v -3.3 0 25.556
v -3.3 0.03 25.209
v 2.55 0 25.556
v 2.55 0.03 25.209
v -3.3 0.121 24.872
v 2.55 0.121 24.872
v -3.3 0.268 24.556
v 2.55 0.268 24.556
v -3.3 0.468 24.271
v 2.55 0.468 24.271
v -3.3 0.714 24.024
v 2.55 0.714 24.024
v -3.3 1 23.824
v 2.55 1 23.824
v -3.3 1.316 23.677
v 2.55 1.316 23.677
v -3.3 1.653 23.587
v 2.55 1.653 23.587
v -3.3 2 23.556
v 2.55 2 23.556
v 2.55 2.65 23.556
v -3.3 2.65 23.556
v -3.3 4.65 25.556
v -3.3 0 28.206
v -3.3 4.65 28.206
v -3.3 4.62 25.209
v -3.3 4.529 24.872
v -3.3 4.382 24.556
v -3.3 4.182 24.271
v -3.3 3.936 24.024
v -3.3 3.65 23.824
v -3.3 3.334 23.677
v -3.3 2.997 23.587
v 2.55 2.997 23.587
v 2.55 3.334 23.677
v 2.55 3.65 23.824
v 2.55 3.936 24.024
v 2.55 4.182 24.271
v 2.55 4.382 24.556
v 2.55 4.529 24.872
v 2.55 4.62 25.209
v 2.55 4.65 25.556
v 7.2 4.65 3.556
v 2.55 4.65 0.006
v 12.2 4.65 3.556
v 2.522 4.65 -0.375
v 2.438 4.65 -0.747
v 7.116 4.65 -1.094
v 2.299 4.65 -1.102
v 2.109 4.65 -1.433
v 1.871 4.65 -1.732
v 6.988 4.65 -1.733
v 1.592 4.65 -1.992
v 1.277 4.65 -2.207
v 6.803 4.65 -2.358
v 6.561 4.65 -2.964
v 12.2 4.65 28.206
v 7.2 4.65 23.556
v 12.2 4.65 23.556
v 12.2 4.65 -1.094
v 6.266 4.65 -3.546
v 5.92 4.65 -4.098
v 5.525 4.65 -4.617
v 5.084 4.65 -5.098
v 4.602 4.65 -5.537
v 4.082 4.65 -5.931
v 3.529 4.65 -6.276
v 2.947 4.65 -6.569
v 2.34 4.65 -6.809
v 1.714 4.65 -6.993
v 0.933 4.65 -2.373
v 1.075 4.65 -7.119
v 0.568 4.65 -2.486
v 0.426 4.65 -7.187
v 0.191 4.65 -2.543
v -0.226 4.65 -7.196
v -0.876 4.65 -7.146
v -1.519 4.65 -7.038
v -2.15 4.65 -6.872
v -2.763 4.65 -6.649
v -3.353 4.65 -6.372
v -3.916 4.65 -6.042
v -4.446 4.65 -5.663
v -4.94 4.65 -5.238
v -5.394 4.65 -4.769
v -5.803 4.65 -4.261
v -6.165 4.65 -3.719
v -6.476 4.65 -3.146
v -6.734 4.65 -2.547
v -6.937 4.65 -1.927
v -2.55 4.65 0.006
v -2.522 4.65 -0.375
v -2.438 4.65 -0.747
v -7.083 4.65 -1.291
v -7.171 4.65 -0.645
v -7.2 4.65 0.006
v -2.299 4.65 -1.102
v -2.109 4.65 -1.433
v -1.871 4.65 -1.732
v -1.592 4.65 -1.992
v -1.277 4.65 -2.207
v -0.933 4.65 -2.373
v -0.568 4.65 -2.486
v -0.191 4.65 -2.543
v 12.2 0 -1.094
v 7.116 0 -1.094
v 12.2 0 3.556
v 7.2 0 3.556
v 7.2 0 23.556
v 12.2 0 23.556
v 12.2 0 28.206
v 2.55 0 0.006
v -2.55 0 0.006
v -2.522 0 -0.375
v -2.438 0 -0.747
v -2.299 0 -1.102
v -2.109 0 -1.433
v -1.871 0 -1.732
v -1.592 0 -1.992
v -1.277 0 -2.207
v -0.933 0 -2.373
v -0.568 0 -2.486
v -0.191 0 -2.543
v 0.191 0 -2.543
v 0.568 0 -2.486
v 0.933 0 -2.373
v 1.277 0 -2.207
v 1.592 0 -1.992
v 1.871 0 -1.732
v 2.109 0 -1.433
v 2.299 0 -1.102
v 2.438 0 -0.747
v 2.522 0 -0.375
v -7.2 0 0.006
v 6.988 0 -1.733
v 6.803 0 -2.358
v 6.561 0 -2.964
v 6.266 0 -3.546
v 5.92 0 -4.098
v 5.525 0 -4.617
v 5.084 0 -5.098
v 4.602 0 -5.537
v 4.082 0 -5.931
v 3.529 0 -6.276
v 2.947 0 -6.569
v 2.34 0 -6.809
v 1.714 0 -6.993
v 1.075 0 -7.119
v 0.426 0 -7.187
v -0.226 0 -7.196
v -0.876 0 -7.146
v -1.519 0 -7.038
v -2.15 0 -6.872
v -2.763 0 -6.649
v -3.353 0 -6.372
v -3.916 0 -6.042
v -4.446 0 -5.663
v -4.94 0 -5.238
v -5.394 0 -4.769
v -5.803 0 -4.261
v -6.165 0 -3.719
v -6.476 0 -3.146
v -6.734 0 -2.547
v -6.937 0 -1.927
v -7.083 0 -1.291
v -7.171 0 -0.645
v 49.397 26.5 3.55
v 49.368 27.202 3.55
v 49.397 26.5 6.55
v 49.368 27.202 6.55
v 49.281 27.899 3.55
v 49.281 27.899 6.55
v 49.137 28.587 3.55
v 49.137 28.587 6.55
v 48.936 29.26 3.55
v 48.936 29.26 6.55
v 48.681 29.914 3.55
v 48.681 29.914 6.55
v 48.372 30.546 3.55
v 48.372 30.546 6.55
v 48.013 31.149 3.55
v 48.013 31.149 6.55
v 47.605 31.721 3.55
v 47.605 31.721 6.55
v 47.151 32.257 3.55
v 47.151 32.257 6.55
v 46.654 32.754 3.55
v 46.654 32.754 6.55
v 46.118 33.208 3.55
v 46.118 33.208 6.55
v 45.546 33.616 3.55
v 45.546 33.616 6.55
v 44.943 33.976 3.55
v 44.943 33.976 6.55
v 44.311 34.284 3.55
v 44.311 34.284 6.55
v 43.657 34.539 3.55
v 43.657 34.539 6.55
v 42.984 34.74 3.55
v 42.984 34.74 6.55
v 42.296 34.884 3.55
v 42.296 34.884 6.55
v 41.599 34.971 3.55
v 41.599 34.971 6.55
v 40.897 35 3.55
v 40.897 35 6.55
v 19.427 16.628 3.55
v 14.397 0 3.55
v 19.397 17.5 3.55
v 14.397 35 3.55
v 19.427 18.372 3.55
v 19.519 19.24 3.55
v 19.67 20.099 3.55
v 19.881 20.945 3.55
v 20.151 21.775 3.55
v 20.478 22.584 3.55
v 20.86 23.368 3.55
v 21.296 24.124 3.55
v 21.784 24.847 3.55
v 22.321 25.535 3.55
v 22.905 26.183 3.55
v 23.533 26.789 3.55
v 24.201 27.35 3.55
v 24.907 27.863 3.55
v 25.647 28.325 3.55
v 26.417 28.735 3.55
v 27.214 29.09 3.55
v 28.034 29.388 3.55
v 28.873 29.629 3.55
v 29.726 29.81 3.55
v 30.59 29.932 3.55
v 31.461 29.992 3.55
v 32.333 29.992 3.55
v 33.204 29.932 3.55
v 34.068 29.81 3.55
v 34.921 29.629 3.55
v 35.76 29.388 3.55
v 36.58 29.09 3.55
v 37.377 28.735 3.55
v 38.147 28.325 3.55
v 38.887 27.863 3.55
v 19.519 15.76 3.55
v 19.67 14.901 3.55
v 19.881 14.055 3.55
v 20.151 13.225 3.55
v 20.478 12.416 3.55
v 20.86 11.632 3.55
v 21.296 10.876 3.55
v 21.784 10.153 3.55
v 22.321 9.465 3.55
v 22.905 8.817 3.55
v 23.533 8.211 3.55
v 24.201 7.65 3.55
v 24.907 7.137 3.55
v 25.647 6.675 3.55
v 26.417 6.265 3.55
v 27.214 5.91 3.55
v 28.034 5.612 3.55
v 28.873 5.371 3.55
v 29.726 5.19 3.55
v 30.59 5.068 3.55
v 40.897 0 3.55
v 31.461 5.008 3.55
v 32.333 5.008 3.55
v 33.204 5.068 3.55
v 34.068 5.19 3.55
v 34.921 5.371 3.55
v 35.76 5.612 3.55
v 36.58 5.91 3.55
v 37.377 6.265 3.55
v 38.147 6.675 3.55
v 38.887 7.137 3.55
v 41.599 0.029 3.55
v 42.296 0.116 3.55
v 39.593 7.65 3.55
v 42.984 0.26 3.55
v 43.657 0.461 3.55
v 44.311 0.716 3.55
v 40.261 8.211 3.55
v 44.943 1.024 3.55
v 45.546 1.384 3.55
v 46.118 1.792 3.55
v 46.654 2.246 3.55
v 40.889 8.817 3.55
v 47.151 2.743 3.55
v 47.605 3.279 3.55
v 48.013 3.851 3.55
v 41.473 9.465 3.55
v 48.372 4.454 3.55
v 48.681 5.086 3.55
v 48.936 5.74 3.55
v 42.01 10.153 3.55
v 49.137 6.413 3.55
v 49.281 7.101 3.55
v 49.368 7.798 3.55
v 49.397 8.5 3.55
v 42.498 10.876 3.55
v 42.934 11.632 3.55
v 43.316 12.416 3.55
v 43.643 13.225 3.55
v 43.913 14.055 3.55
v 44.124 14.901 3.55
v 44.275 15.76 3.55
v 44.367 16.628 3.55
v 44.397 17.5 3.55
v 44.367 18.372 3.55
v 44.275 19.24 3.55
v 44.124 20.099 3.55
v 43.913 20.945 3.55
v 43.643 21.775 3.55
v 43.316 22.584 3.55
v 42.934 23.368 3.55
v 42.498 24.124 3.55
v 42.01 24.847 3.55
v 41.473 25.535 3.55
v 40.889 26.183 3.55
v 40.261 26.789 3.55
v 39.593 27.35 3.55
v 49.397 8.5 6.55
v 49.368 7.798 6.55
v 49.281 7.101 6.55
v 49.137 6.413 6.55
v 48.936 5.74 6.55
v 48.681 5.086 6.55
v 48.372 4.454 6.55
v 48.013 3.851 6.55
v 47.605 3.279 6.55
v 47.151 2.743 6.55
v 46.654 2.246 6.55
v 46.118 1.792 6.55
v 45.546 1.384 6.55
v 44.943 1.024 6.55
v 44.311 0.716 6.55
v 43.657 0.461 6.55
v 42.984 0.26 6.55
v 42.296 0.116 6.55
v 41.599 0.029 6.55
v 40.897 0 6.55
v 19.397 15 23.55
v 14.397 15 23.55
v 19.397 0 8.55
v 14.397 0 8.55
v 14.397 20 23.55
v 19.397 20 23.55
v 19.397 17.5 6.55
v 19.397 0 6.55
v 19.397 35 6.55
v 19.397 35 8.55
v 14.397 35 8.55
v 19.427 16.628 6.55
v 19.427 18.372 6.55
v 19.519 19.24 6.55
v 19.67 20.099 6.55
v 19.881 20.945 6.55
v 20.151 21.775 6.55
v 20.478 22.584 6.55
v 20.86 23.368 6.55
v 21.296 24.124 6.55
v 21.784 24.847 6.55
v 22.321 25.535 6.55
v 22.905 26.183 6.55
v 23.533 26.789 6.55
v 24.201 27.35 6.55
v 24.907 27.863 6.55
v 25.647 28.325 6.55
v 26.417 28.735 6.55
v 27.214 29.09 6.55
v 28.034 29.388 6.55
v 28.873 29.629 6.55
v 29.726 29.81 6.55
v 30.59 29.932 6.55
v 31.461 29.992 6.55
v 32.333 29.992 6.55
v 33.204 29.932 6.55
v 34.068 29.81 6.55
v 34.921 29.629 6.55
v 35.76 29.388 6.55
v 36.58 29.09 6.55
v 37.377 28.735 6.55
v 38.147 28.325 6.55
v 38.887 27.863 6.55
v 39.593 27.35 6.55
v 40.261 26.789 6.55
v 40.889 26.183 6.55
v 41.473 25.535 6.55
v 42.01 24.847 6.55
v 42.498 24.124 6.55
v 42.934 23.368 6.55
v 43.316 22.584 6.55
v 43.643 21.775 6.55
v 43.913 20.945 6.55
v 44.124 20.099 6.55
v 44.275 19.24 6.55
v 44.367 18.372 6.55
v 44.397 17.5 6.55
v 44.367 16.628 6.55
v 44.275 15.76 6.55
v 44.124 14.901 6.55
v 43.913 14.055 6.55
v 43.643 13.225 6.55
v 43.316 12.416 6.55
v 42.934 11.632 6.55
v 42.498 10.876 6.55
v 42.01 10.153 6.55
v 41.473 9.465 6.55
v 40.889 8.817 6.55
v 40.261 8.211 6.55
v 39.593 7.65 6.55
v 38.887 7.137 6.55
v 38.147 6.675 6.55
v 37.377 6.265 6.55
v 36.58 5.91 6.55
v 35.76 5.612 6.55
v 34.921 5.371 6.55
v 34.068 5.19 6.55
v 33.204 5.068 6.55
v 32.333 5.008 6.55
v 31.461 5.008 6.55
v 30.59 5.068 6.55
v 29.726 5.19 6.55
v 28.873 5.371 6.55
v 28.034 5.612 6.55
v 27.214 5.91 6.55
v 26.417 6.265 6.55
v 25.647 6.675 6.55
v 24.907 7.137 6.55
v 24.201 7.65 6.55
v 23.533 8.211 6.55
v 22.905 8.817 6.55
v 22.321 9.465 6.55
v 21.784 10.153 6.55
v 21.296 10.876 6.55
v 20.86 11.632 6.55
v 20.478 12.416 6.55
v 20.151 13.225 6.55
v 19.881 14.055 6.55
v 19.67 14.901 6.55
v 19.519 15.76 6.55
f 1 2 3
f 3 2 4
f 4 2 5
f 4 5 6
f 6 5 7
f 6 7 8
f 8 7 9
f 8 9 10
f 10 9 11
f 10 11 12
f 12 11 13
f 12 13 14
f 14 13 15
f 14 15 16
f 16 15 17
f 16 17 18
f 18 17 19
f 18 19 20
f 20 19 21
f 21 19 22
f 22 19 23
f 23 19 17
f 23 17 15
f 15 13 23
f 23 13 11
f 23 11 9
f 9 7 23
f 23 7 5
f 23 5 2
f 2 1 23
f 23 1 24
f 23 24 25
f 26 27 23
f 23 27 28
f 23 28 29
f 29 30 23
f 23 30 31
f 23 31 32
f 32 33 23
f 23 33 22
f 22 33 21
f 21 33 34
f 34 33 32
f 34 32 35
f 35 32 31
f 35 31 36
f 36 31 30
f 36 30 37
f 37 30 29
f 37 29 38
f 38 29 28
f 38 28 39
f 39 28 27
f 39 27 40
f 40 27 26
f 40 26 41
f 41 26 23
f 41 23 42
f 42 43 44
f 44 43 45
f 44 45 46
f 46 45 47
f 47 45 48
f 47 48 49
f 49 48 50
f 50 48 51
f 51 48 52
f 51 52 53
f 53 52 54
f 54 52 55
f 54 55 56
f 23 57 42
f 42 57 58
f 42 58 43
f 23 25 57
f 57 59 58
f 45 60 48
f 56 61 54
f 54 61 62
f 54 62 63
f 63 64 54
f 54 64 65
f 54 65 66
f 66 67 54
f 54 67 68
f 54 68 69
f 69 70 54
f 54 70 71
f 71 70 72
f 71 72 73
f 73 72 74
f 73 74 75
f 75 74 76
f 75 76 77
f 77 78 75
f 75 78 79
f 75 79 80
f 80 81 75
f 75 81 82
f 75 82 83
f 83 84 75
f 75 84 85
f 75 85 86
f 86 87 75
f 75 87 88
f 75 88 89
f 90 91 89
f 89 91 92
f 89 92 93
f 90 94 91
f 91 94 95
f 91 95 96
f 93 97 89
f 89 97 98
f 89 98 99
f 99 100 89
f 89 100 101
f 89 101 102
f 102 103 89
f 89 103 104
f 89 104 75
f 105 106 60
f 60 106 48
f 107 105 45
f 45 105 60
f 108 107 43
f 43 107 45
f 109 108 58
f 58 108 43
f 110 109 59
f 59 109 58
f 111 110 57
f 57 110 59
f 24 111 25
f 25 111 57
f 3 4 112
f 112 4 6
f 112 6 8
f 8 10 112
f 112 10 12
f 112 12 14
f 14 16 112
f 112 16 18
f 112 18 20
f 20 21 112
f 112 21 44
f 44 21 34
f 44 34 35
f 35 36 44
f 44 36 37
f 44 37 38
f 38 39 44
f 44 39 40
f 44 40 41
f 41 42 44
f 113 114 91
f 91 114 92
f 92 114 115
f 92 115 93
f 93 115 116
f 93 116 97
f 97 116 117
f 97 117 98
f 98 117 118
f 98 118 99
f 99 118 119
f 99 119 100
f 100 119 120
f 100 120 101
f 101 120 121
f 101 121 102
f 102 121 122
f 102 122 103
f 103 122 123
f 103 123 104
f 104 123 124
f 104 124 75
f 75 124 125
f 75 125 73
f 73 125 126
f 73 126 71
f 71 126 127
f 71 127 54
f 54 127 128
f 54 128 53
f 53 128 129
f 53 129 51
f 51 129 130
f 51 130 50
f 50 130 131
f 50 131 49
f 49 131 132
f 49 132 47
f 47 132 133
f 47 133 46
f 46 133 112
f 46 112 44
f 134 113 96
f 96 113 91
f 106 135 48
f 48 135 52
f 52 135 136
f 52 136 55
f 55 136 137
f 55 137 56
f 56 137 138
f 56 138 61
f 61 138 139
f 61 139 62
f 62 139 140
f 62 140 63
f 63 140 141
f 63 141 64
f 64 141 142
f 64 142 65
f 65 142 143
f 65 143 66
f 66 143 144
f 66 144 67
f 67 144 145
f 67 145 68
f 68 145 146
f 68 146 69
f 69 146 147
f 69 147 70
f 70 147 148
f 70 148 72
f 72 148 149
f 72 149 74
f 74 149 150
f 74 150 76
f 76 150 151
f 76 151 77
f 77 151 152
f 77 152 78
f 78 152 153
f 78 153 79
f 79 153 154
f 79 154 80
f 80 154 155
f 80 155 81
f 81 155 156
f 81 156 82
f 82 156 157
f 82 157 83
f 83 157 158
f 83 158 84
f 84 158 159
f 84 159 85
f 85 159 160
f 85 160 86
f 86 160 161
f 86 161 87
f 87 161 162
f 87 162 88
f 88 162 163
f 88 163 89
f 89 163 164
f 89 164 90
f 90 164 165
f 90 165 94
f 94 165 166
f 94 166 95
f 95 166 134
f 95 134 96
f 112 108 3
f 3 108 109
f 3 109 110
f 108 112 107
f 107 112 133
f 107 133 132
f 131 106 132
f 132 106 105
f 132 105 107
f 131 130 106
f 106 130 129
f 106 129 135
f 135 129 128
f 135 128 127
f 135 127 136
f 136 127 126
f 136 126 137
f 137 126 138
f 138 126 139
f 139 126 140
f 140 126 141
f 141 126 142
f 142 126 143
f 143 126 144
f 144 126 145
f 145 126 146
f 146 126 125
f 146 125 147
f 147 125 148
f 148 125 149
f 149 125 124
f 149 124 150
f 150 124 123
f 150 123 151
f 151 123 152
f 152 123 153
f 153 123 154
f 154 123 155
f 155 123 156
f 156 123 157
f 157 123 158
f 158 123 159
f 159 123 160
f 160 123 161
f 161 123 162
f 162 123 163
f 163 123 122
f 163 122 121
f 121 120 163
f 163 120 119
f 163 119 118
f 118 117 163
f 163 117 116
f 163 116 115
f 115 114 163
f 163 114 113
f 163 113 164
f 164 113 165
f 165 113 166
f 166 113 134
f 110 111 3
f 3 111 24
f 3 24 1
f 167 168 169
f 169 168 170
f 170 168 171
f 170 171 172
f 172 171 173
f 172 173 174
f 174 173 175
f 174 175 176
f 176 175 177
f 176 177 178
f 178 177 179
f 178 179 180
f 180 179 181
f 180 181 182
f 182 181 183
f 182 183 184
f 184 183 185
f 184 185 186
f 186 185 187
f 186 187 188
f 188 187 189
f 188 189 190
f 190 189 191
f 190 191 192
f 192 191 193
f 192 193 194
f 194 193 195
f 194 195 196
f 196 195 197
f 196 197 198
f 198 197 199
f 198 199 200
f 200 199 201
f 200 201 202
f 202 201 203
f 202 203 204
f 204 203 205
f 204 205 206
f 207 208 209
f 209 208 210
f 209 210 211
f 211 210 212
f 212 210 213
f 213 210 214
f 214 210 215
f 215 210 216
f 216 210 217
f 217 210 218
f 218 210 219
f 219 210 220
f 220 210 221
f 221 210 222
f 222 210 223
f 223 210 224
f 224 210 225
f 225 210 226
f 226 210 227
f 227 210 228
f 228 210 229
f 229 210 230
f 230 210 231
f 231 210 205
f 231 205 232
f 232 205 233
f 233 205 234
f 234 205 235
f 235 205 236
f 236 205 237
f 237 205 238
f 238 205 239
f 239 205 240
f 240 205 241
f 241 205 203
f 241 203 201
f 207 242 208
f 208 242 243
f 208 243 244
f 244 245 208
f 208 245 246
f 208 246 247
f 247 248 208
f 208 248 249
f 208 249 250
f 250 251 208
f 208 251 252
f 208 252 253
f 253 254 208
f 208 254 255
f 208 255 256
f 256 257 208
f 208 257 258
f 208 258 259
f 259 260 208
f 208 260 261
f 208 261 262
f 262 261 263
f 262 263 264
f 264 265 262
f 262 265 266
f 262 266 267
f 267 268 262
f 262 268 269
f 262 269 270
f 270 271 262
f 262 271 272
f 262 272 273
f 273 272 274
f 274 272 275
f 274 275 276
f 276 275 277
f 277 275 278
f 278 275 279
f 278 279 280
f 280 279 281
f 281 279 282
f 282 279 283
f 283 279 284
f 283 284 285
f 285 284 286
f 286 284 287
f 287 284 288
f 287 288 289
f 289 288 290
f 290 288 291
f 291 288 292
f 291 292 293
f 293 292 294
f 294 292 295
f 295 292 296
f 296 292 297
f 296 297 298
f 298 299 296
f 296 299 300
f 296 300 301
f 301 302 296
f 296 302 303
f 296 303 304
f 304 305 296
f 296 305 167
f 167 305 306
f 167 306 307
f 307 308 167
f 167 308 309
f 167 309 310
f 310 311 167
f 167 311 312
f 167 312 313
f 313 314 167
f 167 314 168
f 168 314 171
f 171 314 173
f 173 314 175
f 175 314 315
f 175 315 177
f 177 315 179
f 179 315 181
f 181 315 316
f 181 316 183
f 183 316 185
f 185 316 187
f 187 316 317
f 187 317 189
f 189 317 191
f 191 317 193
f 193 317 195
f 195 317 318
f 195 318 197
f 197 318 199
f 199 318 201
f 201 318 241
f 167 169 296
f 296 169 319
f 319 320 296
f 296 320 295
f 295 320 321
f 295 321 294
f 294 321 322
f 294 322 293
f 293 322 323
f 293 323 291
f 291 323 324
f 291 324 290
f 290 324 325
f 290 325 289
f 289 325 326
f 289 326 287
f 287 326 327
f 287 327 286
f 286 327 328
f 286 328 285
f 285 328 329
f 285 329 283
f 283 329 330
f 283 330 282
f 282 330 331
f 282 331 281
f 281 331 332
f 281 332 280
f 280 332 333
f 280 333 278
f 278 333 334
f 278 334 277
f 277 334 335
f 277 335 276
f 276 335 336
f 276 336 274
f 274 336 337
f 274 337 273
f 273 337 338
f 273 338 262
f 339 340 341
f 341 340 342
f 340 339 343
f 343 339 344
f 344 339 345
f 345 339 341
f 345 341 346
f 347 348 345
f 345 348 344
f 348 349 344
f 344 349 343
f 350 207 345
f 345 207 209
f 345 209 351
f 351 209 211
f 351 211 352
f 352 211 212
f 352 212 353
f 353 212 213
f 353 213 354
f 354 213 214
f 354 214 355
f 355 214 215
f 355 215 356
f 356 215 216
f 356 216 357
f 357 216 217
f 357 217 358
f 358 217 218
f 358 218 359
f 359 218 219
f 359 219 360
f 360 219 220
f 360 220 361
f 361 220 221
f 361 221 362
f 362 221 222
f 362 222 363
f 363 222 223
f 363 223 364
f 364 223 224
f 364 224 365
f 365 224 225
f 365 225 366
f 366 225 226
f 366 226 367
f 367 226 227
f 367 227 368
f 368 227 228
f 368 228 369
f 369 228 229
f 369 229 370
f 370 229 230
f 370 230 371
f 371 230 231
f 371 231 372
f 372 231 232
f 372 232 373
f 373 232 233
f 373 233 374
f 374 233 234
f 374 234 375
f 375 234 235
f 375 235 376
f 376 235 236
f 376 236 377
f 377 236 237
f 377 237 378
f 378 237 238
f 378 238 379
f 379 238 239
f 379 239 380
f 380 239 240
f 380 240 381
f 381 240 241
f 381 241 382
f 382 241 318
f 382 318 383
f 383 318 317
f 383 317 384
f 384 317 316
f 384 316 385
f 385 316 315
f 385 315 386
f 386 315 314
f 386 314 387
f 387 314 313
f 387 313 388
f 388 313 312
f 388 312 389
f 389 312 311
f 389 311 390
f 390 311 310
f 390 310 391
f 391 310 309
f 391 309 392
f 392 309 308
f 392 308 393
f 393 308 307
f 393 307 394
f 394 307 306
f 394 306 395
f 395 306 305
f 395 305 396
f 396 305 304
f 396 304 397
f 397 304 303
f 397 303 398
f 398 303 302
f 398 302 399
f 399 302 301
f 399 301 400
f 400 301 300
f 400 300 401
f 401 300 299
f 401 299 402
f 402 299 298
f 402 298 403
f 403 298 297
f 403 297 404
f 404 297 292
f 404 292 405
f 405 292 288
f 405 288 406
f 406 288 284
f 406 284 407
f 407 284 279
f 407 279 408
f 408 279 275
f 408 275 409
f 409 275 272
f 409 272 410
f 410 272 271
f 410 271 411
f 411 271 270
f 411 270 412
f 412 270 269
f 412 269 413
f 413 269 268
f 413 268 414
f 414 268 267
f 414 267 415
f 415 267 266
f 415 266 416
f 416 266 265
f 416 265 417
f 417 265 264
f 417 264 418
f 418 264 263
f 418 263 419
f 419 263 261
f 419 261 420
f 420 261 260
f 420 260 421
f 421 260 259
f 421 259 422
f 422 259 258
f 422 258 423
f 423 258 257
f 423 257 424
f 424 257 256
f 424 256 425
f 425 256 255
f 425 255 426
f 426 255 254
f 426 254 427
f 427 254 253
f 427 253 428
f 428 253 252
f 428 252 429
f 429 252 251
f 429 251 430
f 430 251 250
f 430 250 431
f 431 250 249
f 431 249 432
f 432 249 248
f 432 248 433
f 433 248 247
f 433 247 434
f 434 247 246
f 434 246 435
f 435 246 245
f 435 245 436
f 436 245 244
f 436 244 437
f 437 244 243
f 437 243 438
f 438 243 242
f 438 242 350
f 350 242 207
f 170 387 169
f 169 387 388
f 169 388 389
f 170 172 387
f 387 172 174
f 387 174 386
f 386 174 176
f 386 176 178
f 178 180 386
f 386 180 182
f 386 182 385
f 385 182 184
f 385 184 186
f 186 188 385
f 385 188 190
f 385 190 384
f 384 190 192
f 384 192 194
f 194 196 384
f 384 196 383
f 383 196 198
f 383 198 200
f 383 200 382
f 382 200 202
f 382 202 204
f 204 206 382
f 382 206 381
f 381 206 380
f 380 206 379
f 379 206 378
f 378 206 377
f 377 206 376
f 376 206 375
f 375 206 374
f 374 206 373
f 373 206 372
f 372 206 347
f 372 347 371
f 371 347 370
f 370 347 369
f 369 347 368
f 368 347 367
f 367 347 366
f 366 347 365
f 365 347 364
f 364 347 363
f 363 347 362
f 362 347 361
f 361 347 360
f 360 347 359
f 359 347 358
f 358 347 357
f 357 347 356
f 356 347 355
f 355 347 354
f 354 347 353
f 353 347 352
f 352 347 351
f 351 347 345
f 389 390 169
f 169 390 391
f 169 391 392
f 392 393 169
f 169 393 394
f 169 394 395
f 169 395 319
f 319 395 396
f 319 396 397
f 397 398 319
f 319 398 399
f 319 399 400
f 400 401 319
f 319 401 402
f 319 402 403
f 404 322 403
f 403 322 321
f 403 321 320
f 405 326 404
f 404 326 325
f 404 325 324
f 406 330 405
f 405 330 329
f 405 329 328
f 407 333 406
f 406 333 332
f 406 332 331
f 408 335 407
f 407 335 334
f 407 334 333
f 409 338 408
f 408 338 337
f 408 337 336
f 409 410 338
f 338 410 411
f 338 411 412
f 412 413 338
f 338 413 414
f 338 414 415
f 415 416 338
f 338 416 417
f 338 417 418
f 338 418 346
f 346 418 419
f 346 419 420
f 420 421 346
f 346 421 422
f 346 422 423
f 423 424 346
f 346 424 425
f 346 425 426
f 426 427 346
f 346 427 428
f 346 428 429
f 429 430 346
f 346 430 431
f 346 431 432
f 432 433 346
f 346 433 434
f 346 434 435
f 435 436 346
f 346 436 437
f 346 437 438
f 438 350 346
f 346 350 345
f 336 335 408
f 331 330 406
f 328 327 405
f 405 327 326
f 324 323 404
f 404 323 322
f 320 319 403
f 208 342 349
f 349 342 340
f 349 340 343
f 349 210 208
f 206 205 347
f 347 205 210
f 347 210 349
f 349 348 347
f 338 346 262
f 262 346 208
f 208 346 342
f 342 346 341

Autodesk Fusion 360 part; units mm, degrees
sketch "Sketch1" plane through (0, 0, 0) normal (0, 1, 0) x (1, 0, 0)
  circle A0 centre (0, 0) radius 7.2
  circle A1 centre (0, 0) radius 2.55
  line L0 (7.2, -0.0062) -> (2.55, -0.0062)
  line L1 (2.55, -0.0062) -> (2.55, -28.2062)
  line L2 (2.55, -28.2062) -> (7.2, -28.2062)
  line L3 (7.2, -28.2062) -> (7.2, -0.0062)
  line L4 (7.2, -28.2062) -> (-3.3, -28.2062)
  line L5 (-3.3, -28.2062) -> (-3.3, -23.5562)
  line L6 (-3.3, -23.5562) -> (7.2, -23.5562)
  line L7 (7.2, -23.5562) -> (7.2, -28.2062)
  line L8 (2.55, -0.0062) -> (-7.2, -0.0062)
  line L9 (7.2, -5.8) -> (7.2, -1.15)
  line L10 (7.2, -23.5562) -> (12.2, -23.5562)
  line L11 (12.2, -23.5562) -> (12.2, -28.2062)
  line L12 (12.2, -28.2062) -> (7.2, -28.2062)
  line L13 (7.2, -28.2062) -> (7.2, -23.5562)
  line L14 (7, -3.5562) -> (12.2, -3.5562)
  line L15 (12.2, -3.5562) -> (12.2, 1.0938)
  line L16 (12.2, 1.0938) -> (7, 1.0938)
  line L17 (7, 1.0938) -> (7, -3.5562)
  dimension "d1" = 14.4
  dimension "d2" = 5.1
  dimension "d3" = 4.65
  dimension "d4" = 28.2
  dimension "d5" = 10.5
  dimension "d21" = 5
  dimension "d37" = 5.2
  dimension "d38" = 4.65
  dimension "d39" = 20
extrude "Extrude1" add sketch "Sketch1" along normal blind 4.65 contours A0 L0 L16 L17 | A0 L3 L9 L14 L17 | A0 L0 L17 | A0 L3 L9 L14 L15 L16 | A0 L1 L3 L6 L9 L14 L17 | A0 L0 L1 L17 | A0 A1 L0 L8 L16 L17 | L1 L2 L3 L4 L6 L7 L13 | L1 L4 L5 L6 | L3 L7 L10 L11 L12 L13 makes body 1
fillet "Fillet3" radius 2 2 edges at (-0.375, 4.65, 23.5562) (-0.375, 0, 23.5562) on bodies 1
sketch "Sketch2" plane through (0, 0, 0) normal (0, 1, 0) x (1, 0, 0)
  line L0 (14.397, -23.55) -> (19.397, -23.55)
  line L1 (19.397, -23.55) -> (19.397, -3.55)
  line L2 (19.397, -3.55) -> (14.397, -3.55)
  line L3 (14.397, -3.55) -> (14.397, -23.55)
  line L4 (14.397, -3.55) -> (49.397, -3.55)
  line L5 (49.397, -3.55) -> (49.397, -6.55)
  line L6 (49.397, -6.55) -> (14.397, -6.55)
  line L7 (14.397, -6.55) -> (14.397, -3.55)
  dimension "d22" = 5
  dimension "d23" = 20
  dimension "d24" = 35
  dimension "d25" = 3
extrude "Extrude2" add sketch "Sketch2" along normal blind 35 separate body contours L1 L2 L3 L4 L6 L7 | L1 L4 L5 L6 makes body 2
extrude "Extrude3" add sketch "Sketch2" along normal blind 35 contours L0 L1 L3 L6 bodies 2
sketch "Sketch3" plane through (0, 0, 0) normal (0, 0, 1) x (1, 0, 0)
  circle A0 centre (31.897, 17.5) radius 12.5
  dimension "d31" = 25
extrude "Extrude4" cut sketch "Sketch3" along normal blind 13 bodies 2
chamfer "Chamfer1" distance 15 angle 45 2 edges at (16.897, 35, 23.55) (16.897, 0, 23.55) on bodies 2
fillet "Fillet5" radius 8.5 2 edges at (49.397, 0, 5.05) (49.397, 35, 5.05) on bodies 2
